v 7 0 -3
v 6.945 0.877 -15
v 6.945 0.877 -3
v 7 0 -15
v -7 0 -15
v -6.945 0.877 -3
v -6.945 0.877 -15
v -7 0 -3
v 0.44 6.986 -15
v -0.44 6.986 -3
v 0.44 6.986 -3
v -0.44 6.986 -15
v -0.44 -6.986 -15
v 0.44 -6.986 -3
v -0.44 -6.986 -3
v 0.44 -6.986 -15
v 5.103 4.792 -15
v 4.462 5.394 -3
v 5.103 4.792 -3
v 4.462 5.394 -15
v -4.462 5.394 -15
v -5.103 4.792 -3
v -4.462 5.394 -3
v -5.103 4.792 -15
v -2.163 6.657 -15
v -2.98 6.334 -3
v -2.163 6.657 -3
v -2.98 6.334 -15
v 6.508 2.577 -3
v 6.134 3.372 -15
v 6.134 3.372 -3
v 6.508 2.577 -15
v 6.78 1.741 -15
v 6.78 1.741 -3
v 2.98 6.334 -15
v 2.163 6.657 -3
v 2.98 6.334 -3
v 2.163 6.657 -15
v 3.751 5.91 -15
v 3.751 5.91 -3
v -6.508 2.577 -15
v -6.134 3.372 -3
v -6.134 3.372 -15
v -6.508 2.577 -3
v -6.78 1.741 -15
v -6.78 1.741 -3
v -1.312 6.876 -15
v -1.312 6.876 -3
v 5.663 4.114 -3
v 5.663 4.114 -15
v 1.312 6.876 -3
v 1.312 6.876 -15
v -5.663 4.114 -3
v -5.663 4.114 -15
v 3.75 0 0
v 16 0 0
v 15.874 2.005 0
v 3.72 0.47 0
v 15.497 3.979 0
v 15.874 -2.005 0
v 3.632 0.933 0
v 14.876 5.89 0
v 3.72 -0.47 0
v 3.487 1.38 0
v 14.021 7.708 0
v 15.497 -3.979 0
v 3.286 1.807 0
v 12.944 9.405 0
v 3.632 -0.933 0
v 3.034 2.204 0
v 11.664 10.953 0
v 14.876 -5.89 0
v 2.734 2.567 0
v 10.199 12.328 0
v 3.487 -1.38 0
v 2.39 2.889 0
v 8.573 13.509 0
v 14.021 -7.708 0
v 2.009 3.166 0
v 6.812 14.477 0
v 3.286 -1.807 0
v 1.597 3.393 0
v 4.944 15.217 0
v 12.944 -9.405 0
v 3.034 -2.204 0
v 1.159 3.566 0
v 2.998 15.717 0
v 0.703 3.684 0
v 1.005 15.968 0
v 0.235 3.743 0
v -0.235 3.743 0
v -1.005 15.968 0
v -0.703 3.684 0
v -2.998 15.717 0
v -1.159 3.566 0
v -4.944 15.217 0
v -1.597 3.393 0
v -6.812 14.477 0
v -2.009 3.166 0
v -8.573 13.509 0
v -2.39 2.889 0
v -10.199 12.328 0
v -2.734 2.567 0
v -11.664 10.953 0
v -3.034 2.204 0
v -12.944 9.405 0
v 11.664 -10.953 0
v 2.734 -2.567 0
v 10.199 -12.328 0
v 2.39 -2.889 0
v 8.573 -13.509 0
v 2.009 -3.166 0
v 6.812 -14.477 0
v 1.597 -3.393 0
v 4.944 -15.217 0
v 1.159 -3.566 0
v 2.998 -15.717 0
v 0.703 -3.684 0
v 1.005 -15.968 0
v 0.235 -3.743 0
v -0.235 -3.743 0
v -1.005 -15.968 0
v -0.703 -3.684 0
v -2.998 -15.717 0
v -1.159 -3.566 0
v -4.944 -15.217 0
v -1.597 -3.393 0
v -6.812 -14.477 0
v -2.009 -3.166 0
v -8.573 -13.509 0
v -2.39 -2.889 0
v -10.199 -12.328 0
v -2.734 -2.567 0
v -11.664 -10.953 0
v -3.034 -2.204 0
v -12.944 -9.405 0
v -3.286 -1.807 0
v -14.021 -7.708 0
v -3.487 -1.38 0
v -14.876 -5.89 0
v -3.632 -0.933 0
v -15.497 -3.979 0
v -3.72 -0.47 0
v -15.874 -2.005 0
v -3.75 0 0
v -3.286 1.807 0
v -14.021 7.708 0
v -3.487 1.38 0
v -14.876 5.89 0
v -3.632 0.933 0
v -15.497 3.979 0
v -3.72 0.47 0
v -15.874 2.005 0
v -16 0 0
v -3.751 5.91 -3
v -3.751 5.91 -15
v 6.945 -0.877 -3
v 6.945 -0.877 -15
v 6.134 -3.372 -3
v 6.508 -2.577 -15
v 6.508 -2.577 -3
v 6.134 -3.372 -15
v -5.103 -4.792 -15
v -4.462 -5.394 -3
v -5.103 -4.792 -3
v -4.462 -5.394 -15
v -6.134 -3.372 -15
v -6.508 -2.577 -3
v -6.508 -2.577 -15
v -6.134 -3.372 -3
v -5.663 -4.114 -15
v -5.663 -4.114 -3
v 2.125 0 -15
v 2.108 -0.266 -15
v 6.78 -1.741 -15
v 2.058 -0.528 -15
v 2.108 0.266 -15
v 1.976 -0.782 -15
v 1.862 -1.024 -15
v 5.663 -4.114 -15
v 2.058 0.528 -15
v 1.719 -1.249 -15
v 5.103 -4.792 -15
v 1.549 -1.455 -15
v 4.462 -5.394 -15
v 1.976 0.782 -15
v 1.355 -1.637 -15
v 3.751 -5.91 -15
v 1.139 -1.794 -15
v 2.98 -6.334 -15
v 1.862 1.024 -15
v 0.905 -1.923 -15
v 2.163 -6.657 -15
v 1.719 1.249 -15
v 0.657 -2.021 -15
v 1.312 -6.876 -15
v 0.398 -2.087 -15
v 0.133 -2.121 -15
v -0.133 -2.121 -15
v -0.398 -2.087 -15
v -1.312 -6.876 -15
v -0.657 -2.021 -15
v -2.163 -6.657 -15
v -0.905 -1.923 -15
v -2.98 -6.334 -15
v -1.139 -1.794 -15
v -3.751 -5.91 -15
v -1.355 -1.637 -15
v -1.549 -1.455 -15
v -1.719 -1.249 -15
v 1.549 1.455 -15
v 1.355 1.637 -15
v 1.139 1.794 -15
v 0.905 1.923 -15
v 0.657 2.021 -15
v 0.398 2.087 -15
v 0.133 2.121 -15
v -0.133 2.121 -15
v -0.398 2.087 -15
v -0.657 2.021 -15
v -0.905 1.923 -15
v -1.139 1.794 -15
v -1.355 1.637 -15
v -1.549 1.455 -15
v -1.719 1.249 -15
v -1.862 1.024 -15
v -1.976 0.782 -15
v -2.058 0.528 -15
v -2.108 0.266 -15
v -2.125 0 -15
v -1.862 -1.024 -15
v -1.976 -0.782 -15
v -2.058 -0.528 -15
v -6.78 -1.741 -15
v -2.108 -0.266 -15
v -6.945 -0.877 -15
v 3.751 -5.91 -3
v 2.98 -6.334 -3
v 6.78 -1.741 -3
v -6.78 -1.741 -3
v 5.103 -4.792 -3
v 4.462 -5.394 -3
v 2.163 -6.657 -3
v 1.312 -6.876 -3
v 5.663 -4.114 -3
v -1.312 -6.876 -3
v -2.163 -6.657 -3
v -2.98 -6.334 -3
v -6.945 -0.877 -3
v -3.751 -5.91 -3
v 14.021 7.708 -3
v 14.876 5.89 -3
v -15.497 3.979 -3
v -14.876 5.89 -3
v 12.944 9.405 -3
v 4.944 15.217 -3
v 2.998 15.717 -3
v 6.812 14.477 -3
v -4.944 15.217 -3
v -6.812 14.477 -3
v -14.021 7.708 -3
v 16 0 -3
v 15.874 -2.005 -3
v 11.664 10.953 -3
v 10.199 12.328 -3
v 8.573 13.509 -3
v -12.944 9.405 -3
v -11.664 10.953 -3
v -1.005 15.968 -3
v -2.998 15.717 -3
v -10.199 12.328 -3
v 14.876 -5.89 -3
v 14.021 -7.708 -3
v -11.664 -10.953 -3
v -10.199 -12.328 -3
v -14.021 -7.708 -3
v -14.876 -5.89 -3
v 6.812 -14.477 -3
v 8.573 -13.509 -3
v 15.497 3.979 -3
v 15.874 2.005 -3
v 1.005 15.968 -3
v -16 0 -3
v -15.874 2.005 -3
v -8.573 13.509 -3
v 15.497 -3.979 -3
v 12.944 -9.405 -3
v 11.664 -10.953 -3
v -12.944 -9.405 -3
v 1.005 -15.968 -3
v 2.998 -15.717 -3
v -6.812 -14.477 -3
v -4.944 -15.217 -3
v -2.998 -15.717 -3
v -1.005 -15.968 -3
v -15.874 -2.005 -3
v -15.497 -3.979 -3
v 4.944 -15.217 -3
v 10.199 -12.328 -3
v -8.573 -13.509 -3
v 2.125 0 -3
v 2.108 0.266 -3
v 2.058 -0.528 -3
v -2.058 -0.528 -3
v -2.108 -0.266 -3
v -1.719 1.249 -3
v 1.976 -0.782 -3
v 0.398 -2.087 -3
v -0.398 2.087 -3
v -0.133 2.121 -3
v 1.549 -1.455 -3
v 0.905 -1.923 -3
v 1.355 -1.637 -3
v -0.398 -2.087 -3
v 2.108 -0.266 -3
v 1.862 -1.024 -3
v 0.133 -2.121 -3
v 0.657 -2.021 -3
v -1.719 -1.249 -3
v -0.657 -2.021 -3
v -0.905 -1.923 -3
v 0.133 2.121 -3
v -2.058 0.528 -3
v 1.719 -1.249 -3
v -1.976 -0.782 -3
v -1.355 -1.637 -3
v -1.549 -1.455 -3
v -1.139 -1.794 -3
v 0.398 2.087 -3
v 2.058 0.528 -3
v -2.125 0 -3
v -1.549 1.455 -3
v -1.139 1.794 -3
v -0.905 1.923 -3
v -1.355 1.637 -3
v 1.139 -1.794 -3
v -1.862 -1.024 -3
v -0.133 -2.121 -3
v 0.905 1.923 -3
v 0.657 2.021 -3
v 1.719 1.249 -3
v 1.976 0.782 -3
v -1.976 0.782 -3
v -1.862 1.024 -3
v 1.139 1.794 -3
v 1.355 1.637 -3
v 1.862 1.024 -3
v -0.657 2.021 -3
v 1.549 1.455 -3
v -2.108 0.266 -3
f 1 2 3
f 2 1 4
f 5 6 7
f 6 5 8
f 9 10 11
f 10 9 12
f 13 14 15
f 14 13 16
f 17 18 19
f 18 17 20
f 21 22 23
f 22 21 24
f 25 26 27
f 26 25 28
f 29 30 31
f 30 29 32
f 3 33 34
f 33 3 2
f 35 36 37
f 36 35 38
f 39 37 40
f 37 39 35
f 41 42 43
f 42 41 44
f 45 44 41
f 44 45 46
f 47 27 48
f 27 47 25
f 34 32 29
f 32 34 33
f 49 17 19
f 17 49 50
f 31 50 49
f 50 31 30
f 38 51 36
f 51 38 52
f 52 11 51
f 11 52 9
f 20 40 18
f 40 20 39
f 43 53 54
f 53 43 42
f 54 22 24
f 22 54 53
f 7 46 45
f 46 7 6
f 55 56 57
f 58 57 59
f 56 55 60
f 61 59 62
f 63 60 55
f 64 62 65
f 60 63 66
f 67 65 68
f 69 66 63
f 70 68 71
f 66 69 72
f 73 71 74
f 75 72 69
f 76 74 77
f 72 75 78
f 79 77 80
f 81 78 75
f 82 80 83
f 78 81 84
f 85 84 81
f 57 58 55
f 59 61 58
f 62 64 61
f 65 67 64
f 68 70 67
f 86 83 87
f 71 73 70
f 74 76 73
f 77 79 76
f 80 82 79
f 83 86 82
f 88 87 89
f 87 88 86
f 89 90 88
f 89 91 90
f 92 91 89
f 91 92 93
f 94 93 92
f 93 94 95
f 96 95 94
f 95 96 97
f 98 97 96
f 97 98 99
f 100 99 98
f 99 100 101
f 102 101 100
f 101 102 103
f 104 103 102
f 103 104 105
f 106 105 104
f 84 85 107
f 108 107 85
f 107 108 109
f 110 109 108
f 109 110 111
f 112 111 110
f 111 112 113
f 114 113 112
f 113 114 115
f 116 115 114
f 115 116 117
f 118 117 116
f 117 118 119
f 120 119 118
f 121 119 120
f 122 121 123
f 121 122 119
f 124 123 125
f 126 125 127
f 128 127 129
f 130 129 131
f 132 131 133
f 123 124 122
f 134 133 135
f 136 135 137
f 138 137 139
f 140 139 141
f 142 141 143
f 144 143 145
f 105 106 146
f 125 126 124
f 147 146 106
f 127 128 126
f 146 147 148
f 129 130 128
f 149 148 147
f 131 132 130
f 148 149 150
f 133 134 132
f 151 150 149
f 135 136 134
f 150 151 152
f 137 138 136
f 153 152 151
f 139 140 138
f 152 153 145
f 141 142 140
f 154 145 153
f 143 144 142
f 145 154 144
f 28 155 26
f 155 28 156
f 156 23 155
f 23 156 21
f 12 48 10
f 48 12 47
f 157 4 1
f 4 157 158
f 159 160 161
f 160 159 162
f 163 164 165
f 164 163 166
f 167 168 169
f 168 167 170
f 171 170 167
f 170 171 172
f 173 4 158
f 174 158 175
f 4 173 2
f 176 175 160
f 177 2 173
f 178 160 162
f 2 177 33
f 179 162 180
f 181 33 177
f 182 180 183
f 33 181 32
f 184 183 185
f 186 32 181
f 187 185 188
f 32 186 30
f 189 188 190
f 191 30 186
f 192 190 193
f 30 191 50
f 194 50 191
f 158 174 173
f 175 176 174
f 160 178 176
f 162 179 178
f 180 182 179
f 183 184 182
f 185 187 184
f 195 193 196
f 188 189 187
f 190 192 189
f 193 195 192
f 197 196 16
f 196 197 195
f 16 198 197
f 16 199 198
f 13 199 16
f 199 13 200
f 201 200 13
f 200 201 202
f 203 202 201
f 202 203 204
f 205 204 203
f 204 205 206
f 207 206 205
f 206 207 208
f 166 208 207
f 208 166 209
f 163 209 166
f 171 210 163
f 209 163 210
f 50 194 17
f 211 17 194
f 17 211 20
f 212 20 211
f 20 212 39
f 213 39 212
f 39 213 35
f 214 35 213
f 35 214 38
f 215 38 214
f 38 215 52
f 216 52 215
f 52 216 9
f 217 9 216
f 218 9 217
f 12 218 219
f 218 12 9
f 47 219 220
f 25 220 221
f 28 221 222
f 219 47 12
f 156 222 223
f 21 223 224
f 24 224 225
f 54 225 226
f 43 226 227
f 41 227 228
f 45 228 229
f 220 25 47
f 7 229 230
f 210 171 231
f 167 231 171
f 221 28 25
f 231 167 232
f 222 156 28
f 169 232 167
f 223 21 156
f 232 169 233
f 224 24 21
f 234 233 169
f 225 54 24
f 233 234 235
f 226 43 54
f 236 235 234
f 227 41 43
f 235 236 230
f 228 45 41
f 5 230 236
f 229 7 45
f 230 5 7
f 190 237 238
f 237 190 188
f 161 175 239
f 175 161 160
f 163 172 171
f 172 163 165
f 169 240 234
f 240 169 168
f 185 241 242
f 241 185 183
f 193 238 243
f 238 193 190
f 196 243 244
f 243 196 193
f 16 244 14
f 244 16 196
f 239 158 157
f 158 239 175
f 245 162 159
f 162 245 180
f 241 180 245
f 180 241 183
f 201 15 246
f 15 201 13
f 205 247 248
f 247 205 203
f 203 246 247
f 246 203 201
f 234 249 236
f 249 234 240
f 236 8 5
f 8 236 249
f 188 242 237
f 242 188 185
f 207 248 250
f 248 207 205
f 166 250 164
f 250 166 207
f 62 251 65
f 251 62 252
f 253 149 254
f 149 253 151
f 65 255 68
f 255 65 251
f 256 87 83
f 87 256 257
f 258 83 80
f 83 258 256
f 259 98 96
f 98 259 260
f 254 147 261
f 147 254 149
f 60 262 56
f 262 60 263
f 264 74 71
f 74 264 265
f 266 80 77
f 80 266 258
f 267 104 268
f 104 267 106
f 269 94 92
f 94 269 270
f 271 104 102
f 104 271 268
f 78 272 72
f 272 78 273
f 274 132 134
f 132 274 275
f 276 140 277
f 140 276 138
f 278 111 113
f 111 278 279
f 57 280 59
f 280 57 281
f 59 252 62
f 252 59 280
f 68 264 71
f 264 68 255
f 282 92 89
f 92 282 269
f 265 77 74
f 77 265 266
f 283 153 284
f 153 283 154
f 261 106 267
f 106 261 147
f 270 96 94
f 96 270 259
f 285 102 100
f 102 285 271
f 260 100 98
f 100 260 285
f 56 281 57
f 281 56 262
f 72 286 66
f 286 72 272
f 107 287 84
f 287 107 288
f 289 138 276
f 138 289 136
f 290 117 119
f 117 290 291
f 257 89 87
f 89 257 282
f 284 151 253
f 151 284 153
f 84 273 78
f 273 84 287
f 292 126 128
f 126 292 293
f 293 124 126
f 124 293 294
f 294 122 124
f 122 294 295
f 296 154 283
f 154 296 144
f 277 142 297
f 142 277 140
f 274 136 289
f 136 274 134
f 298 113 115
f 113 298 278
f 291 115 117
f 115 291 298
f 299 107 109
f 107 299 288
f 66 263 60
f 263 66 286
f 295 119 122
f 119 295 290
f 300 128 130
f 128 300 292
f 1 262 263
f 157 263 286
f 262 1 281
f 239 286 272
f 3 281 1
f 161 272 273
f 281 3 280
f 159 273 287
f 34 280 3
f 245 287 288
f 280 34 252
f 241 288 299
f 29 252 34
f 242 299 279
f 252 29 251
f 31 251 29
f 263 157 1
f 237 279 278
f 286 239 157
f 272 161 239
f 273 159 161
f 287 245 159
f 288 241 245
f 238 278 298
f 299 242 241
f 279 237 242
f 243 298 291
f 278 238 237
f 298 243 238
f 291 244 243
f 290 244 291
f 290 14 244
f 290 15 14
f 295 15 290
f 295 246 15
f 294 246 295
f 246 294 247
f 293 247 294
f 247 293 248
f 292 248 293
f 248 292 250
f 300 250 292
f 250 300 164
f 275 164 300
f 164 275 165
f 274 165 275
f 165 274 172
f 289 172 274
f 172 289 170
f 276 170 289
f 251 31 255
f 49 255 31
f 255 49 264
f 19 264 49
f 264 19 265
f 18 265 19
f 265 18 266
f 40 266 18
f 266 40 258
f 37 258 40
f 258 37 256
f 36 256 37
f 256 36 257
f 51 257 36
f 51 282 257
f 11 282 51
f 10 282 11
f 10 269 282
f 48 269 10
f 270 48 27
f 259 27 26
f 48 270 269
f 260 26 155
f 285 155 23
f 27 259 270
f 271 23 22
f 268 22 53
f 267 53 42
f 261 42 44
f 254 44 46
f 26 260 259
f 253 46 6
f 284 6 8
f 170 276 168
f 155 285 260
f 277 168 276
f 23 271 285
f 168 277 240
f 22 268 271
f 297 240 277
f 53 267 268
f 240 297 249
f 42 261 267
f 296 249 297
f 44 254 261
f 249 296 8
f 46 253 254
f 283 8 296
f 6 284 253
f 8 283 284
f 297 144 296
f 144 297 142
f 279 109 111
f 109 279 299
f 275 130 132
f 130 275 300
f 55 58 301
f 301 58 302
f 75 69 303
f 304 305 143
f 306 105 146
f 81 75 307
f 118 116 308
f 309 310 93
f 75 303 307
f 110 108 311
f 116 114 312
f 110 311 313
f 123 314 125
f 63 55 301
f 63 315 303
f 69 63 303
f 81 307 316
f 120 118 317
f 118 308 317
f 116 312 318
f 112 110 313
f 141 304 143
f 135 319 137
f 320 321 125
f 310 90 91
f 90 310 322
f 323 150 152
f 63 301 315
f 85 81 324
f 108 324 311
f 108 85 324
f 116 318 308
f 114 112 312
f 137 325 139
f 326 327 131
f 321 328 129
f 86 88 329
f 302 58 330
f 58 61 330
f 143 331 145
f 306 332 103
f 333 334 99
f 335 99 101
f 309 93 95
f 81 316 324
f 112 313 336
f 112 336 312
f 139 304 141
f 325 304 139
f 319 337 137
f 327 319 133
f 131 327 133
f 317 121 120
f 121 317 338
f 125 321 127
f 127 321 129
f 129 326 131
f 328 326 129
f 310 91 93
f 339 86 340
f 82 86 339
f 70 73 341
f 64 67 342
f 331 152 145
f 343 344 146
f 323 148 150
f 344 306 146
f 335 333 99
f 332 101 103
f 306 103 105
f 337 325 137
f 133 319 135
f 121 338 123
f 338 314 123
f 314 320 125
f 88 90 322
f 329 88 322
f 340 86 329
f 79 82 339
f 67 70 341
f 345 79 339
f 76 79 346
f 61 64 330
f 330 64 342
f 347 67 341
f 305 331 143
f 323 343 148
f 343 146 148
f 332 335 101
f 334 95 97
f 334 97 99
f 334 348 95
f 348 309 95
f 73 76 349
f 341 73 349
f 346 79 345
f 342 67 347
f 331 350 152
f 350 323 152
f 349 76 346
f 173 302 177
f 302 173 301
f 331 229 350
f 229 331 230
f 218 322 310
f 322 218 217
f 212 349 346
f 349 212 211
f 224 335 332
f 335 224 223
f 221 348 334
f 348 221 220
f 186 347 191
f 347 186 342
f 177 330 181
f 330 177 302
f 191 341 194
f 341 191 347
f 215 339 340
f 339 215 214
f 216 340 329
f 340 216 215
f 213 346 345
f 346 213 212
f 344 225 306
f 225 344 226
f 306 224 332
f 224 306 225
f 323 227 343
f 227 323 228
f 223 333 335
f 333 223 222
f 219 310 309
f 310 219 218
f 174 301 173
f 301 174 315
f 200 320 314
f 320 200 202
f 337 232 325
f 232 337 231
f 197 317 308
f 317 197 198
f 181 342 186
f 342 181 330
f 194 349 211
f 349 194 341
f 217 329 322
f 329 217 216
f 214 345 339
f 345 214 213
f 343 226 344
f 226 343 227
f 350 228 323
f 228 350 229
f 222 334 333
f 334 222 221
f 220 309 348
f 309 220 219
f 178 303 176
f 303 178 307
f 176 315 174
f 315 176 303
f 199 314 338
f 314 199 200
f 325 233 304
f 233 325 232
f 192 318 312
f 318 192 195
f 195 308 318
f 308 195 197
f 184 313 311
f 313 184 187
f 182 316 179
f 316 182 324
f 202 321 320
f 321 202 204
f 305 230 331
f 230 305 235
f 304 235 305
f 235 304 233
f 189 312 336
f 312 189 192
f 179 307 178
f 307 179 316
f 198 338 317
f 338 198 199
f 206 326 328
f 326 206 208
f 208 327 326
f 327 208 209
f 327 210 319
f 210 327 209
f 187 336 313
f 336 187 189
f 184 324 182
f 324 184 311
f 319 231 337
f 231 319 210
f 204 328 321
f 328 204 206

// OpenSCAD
$fn = 50;


difference() {
	union() {
		translate(v = [0, 0, -15.0000000000]) {
			cylinder(h = 15, r = 7.0000000000);
		}
		translate(v = [0, 0, -3.0000000000]) {
			cylinder(h = 3, r = 16.0000000000);
		}
	}
	union() {
		translate(v = [0, 0, 0]) {
			rotate(a = [0, 0, 0]) {
				difference() {
					union() {
						#translate(v = [0, 0, -15.0000000000]) {
							cylinder(h = 15, r = 2.0000000000);
						}
						#translate(v = [0, 0, -3]) {
							cylinder(h = 3, r1 = 2.1250000000, r2 = 3.7500000000);
						}
						#translate(v = [0, 0, -15.0000000000]) {
							cylinder(h = 15, r = 2.1250000000);
						}
						#translate(v = [0, 0, -15.0000000000]) {
							cylinder(h = 15, r = 2.0000000000);
						}
					}
					union();
				}
			}
		}
	}
}
